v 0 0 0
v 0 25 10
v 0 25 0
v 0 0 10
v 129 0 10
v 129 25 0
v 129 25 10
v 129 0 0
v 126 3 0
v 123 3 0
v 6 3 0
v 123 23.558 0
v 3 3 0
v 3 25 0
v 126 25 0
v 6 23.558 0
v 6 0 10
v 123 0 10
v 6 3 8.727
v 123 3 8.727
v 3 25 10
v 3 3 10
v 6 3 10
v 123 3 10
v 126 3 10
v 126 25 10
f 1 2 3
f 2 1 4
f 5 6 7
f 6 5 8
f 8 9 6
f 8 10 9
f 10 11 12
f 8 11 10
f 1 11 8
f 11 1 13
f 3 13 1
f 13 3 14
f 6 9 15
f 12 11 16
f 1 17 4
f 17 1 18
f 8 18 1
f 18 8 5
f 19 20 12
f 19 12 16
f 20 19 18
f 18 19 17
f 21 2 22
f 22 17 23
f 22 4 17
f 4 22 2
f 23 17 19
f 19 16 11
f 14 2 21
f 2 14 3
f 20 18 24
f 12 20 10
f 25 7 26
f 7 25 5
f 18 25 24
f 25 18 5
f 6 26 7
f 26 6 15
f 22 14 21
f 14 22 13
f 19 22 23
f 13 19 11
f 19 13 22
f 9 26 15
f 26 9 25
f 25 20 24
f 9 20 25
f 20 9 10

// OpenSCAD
diameter = 18;
wallThickness = 3;
length = (diameter + wallThickness * 2) * 5 + (wallThickness * 3);
echo(length);
angle = 23;
height = 10;
width = 25;
difference() {
    union() {
            difference(){

                    cube([length, width, height]);
                    
                    translate([0, 0, height])
                        rotate([-angle, 0, 0])
                            cube([length + 1, width + 2, height]);
                
             
        }
        translate([0,0,0])
            cube([wallThickness * 2, width, height]);
        translate([length - (wallThickness * 2),0,0])
            cube([wallThickness * 2, width, height]);
    }
    translate([wallThickness, wallThickness,0])
        cube([wallThickness, width - wallThickness, height]);
    translate([length - (wallThickness * 2), wallThickness,0])
        cube([wallThickness, width - wallThickness, height]);
}
